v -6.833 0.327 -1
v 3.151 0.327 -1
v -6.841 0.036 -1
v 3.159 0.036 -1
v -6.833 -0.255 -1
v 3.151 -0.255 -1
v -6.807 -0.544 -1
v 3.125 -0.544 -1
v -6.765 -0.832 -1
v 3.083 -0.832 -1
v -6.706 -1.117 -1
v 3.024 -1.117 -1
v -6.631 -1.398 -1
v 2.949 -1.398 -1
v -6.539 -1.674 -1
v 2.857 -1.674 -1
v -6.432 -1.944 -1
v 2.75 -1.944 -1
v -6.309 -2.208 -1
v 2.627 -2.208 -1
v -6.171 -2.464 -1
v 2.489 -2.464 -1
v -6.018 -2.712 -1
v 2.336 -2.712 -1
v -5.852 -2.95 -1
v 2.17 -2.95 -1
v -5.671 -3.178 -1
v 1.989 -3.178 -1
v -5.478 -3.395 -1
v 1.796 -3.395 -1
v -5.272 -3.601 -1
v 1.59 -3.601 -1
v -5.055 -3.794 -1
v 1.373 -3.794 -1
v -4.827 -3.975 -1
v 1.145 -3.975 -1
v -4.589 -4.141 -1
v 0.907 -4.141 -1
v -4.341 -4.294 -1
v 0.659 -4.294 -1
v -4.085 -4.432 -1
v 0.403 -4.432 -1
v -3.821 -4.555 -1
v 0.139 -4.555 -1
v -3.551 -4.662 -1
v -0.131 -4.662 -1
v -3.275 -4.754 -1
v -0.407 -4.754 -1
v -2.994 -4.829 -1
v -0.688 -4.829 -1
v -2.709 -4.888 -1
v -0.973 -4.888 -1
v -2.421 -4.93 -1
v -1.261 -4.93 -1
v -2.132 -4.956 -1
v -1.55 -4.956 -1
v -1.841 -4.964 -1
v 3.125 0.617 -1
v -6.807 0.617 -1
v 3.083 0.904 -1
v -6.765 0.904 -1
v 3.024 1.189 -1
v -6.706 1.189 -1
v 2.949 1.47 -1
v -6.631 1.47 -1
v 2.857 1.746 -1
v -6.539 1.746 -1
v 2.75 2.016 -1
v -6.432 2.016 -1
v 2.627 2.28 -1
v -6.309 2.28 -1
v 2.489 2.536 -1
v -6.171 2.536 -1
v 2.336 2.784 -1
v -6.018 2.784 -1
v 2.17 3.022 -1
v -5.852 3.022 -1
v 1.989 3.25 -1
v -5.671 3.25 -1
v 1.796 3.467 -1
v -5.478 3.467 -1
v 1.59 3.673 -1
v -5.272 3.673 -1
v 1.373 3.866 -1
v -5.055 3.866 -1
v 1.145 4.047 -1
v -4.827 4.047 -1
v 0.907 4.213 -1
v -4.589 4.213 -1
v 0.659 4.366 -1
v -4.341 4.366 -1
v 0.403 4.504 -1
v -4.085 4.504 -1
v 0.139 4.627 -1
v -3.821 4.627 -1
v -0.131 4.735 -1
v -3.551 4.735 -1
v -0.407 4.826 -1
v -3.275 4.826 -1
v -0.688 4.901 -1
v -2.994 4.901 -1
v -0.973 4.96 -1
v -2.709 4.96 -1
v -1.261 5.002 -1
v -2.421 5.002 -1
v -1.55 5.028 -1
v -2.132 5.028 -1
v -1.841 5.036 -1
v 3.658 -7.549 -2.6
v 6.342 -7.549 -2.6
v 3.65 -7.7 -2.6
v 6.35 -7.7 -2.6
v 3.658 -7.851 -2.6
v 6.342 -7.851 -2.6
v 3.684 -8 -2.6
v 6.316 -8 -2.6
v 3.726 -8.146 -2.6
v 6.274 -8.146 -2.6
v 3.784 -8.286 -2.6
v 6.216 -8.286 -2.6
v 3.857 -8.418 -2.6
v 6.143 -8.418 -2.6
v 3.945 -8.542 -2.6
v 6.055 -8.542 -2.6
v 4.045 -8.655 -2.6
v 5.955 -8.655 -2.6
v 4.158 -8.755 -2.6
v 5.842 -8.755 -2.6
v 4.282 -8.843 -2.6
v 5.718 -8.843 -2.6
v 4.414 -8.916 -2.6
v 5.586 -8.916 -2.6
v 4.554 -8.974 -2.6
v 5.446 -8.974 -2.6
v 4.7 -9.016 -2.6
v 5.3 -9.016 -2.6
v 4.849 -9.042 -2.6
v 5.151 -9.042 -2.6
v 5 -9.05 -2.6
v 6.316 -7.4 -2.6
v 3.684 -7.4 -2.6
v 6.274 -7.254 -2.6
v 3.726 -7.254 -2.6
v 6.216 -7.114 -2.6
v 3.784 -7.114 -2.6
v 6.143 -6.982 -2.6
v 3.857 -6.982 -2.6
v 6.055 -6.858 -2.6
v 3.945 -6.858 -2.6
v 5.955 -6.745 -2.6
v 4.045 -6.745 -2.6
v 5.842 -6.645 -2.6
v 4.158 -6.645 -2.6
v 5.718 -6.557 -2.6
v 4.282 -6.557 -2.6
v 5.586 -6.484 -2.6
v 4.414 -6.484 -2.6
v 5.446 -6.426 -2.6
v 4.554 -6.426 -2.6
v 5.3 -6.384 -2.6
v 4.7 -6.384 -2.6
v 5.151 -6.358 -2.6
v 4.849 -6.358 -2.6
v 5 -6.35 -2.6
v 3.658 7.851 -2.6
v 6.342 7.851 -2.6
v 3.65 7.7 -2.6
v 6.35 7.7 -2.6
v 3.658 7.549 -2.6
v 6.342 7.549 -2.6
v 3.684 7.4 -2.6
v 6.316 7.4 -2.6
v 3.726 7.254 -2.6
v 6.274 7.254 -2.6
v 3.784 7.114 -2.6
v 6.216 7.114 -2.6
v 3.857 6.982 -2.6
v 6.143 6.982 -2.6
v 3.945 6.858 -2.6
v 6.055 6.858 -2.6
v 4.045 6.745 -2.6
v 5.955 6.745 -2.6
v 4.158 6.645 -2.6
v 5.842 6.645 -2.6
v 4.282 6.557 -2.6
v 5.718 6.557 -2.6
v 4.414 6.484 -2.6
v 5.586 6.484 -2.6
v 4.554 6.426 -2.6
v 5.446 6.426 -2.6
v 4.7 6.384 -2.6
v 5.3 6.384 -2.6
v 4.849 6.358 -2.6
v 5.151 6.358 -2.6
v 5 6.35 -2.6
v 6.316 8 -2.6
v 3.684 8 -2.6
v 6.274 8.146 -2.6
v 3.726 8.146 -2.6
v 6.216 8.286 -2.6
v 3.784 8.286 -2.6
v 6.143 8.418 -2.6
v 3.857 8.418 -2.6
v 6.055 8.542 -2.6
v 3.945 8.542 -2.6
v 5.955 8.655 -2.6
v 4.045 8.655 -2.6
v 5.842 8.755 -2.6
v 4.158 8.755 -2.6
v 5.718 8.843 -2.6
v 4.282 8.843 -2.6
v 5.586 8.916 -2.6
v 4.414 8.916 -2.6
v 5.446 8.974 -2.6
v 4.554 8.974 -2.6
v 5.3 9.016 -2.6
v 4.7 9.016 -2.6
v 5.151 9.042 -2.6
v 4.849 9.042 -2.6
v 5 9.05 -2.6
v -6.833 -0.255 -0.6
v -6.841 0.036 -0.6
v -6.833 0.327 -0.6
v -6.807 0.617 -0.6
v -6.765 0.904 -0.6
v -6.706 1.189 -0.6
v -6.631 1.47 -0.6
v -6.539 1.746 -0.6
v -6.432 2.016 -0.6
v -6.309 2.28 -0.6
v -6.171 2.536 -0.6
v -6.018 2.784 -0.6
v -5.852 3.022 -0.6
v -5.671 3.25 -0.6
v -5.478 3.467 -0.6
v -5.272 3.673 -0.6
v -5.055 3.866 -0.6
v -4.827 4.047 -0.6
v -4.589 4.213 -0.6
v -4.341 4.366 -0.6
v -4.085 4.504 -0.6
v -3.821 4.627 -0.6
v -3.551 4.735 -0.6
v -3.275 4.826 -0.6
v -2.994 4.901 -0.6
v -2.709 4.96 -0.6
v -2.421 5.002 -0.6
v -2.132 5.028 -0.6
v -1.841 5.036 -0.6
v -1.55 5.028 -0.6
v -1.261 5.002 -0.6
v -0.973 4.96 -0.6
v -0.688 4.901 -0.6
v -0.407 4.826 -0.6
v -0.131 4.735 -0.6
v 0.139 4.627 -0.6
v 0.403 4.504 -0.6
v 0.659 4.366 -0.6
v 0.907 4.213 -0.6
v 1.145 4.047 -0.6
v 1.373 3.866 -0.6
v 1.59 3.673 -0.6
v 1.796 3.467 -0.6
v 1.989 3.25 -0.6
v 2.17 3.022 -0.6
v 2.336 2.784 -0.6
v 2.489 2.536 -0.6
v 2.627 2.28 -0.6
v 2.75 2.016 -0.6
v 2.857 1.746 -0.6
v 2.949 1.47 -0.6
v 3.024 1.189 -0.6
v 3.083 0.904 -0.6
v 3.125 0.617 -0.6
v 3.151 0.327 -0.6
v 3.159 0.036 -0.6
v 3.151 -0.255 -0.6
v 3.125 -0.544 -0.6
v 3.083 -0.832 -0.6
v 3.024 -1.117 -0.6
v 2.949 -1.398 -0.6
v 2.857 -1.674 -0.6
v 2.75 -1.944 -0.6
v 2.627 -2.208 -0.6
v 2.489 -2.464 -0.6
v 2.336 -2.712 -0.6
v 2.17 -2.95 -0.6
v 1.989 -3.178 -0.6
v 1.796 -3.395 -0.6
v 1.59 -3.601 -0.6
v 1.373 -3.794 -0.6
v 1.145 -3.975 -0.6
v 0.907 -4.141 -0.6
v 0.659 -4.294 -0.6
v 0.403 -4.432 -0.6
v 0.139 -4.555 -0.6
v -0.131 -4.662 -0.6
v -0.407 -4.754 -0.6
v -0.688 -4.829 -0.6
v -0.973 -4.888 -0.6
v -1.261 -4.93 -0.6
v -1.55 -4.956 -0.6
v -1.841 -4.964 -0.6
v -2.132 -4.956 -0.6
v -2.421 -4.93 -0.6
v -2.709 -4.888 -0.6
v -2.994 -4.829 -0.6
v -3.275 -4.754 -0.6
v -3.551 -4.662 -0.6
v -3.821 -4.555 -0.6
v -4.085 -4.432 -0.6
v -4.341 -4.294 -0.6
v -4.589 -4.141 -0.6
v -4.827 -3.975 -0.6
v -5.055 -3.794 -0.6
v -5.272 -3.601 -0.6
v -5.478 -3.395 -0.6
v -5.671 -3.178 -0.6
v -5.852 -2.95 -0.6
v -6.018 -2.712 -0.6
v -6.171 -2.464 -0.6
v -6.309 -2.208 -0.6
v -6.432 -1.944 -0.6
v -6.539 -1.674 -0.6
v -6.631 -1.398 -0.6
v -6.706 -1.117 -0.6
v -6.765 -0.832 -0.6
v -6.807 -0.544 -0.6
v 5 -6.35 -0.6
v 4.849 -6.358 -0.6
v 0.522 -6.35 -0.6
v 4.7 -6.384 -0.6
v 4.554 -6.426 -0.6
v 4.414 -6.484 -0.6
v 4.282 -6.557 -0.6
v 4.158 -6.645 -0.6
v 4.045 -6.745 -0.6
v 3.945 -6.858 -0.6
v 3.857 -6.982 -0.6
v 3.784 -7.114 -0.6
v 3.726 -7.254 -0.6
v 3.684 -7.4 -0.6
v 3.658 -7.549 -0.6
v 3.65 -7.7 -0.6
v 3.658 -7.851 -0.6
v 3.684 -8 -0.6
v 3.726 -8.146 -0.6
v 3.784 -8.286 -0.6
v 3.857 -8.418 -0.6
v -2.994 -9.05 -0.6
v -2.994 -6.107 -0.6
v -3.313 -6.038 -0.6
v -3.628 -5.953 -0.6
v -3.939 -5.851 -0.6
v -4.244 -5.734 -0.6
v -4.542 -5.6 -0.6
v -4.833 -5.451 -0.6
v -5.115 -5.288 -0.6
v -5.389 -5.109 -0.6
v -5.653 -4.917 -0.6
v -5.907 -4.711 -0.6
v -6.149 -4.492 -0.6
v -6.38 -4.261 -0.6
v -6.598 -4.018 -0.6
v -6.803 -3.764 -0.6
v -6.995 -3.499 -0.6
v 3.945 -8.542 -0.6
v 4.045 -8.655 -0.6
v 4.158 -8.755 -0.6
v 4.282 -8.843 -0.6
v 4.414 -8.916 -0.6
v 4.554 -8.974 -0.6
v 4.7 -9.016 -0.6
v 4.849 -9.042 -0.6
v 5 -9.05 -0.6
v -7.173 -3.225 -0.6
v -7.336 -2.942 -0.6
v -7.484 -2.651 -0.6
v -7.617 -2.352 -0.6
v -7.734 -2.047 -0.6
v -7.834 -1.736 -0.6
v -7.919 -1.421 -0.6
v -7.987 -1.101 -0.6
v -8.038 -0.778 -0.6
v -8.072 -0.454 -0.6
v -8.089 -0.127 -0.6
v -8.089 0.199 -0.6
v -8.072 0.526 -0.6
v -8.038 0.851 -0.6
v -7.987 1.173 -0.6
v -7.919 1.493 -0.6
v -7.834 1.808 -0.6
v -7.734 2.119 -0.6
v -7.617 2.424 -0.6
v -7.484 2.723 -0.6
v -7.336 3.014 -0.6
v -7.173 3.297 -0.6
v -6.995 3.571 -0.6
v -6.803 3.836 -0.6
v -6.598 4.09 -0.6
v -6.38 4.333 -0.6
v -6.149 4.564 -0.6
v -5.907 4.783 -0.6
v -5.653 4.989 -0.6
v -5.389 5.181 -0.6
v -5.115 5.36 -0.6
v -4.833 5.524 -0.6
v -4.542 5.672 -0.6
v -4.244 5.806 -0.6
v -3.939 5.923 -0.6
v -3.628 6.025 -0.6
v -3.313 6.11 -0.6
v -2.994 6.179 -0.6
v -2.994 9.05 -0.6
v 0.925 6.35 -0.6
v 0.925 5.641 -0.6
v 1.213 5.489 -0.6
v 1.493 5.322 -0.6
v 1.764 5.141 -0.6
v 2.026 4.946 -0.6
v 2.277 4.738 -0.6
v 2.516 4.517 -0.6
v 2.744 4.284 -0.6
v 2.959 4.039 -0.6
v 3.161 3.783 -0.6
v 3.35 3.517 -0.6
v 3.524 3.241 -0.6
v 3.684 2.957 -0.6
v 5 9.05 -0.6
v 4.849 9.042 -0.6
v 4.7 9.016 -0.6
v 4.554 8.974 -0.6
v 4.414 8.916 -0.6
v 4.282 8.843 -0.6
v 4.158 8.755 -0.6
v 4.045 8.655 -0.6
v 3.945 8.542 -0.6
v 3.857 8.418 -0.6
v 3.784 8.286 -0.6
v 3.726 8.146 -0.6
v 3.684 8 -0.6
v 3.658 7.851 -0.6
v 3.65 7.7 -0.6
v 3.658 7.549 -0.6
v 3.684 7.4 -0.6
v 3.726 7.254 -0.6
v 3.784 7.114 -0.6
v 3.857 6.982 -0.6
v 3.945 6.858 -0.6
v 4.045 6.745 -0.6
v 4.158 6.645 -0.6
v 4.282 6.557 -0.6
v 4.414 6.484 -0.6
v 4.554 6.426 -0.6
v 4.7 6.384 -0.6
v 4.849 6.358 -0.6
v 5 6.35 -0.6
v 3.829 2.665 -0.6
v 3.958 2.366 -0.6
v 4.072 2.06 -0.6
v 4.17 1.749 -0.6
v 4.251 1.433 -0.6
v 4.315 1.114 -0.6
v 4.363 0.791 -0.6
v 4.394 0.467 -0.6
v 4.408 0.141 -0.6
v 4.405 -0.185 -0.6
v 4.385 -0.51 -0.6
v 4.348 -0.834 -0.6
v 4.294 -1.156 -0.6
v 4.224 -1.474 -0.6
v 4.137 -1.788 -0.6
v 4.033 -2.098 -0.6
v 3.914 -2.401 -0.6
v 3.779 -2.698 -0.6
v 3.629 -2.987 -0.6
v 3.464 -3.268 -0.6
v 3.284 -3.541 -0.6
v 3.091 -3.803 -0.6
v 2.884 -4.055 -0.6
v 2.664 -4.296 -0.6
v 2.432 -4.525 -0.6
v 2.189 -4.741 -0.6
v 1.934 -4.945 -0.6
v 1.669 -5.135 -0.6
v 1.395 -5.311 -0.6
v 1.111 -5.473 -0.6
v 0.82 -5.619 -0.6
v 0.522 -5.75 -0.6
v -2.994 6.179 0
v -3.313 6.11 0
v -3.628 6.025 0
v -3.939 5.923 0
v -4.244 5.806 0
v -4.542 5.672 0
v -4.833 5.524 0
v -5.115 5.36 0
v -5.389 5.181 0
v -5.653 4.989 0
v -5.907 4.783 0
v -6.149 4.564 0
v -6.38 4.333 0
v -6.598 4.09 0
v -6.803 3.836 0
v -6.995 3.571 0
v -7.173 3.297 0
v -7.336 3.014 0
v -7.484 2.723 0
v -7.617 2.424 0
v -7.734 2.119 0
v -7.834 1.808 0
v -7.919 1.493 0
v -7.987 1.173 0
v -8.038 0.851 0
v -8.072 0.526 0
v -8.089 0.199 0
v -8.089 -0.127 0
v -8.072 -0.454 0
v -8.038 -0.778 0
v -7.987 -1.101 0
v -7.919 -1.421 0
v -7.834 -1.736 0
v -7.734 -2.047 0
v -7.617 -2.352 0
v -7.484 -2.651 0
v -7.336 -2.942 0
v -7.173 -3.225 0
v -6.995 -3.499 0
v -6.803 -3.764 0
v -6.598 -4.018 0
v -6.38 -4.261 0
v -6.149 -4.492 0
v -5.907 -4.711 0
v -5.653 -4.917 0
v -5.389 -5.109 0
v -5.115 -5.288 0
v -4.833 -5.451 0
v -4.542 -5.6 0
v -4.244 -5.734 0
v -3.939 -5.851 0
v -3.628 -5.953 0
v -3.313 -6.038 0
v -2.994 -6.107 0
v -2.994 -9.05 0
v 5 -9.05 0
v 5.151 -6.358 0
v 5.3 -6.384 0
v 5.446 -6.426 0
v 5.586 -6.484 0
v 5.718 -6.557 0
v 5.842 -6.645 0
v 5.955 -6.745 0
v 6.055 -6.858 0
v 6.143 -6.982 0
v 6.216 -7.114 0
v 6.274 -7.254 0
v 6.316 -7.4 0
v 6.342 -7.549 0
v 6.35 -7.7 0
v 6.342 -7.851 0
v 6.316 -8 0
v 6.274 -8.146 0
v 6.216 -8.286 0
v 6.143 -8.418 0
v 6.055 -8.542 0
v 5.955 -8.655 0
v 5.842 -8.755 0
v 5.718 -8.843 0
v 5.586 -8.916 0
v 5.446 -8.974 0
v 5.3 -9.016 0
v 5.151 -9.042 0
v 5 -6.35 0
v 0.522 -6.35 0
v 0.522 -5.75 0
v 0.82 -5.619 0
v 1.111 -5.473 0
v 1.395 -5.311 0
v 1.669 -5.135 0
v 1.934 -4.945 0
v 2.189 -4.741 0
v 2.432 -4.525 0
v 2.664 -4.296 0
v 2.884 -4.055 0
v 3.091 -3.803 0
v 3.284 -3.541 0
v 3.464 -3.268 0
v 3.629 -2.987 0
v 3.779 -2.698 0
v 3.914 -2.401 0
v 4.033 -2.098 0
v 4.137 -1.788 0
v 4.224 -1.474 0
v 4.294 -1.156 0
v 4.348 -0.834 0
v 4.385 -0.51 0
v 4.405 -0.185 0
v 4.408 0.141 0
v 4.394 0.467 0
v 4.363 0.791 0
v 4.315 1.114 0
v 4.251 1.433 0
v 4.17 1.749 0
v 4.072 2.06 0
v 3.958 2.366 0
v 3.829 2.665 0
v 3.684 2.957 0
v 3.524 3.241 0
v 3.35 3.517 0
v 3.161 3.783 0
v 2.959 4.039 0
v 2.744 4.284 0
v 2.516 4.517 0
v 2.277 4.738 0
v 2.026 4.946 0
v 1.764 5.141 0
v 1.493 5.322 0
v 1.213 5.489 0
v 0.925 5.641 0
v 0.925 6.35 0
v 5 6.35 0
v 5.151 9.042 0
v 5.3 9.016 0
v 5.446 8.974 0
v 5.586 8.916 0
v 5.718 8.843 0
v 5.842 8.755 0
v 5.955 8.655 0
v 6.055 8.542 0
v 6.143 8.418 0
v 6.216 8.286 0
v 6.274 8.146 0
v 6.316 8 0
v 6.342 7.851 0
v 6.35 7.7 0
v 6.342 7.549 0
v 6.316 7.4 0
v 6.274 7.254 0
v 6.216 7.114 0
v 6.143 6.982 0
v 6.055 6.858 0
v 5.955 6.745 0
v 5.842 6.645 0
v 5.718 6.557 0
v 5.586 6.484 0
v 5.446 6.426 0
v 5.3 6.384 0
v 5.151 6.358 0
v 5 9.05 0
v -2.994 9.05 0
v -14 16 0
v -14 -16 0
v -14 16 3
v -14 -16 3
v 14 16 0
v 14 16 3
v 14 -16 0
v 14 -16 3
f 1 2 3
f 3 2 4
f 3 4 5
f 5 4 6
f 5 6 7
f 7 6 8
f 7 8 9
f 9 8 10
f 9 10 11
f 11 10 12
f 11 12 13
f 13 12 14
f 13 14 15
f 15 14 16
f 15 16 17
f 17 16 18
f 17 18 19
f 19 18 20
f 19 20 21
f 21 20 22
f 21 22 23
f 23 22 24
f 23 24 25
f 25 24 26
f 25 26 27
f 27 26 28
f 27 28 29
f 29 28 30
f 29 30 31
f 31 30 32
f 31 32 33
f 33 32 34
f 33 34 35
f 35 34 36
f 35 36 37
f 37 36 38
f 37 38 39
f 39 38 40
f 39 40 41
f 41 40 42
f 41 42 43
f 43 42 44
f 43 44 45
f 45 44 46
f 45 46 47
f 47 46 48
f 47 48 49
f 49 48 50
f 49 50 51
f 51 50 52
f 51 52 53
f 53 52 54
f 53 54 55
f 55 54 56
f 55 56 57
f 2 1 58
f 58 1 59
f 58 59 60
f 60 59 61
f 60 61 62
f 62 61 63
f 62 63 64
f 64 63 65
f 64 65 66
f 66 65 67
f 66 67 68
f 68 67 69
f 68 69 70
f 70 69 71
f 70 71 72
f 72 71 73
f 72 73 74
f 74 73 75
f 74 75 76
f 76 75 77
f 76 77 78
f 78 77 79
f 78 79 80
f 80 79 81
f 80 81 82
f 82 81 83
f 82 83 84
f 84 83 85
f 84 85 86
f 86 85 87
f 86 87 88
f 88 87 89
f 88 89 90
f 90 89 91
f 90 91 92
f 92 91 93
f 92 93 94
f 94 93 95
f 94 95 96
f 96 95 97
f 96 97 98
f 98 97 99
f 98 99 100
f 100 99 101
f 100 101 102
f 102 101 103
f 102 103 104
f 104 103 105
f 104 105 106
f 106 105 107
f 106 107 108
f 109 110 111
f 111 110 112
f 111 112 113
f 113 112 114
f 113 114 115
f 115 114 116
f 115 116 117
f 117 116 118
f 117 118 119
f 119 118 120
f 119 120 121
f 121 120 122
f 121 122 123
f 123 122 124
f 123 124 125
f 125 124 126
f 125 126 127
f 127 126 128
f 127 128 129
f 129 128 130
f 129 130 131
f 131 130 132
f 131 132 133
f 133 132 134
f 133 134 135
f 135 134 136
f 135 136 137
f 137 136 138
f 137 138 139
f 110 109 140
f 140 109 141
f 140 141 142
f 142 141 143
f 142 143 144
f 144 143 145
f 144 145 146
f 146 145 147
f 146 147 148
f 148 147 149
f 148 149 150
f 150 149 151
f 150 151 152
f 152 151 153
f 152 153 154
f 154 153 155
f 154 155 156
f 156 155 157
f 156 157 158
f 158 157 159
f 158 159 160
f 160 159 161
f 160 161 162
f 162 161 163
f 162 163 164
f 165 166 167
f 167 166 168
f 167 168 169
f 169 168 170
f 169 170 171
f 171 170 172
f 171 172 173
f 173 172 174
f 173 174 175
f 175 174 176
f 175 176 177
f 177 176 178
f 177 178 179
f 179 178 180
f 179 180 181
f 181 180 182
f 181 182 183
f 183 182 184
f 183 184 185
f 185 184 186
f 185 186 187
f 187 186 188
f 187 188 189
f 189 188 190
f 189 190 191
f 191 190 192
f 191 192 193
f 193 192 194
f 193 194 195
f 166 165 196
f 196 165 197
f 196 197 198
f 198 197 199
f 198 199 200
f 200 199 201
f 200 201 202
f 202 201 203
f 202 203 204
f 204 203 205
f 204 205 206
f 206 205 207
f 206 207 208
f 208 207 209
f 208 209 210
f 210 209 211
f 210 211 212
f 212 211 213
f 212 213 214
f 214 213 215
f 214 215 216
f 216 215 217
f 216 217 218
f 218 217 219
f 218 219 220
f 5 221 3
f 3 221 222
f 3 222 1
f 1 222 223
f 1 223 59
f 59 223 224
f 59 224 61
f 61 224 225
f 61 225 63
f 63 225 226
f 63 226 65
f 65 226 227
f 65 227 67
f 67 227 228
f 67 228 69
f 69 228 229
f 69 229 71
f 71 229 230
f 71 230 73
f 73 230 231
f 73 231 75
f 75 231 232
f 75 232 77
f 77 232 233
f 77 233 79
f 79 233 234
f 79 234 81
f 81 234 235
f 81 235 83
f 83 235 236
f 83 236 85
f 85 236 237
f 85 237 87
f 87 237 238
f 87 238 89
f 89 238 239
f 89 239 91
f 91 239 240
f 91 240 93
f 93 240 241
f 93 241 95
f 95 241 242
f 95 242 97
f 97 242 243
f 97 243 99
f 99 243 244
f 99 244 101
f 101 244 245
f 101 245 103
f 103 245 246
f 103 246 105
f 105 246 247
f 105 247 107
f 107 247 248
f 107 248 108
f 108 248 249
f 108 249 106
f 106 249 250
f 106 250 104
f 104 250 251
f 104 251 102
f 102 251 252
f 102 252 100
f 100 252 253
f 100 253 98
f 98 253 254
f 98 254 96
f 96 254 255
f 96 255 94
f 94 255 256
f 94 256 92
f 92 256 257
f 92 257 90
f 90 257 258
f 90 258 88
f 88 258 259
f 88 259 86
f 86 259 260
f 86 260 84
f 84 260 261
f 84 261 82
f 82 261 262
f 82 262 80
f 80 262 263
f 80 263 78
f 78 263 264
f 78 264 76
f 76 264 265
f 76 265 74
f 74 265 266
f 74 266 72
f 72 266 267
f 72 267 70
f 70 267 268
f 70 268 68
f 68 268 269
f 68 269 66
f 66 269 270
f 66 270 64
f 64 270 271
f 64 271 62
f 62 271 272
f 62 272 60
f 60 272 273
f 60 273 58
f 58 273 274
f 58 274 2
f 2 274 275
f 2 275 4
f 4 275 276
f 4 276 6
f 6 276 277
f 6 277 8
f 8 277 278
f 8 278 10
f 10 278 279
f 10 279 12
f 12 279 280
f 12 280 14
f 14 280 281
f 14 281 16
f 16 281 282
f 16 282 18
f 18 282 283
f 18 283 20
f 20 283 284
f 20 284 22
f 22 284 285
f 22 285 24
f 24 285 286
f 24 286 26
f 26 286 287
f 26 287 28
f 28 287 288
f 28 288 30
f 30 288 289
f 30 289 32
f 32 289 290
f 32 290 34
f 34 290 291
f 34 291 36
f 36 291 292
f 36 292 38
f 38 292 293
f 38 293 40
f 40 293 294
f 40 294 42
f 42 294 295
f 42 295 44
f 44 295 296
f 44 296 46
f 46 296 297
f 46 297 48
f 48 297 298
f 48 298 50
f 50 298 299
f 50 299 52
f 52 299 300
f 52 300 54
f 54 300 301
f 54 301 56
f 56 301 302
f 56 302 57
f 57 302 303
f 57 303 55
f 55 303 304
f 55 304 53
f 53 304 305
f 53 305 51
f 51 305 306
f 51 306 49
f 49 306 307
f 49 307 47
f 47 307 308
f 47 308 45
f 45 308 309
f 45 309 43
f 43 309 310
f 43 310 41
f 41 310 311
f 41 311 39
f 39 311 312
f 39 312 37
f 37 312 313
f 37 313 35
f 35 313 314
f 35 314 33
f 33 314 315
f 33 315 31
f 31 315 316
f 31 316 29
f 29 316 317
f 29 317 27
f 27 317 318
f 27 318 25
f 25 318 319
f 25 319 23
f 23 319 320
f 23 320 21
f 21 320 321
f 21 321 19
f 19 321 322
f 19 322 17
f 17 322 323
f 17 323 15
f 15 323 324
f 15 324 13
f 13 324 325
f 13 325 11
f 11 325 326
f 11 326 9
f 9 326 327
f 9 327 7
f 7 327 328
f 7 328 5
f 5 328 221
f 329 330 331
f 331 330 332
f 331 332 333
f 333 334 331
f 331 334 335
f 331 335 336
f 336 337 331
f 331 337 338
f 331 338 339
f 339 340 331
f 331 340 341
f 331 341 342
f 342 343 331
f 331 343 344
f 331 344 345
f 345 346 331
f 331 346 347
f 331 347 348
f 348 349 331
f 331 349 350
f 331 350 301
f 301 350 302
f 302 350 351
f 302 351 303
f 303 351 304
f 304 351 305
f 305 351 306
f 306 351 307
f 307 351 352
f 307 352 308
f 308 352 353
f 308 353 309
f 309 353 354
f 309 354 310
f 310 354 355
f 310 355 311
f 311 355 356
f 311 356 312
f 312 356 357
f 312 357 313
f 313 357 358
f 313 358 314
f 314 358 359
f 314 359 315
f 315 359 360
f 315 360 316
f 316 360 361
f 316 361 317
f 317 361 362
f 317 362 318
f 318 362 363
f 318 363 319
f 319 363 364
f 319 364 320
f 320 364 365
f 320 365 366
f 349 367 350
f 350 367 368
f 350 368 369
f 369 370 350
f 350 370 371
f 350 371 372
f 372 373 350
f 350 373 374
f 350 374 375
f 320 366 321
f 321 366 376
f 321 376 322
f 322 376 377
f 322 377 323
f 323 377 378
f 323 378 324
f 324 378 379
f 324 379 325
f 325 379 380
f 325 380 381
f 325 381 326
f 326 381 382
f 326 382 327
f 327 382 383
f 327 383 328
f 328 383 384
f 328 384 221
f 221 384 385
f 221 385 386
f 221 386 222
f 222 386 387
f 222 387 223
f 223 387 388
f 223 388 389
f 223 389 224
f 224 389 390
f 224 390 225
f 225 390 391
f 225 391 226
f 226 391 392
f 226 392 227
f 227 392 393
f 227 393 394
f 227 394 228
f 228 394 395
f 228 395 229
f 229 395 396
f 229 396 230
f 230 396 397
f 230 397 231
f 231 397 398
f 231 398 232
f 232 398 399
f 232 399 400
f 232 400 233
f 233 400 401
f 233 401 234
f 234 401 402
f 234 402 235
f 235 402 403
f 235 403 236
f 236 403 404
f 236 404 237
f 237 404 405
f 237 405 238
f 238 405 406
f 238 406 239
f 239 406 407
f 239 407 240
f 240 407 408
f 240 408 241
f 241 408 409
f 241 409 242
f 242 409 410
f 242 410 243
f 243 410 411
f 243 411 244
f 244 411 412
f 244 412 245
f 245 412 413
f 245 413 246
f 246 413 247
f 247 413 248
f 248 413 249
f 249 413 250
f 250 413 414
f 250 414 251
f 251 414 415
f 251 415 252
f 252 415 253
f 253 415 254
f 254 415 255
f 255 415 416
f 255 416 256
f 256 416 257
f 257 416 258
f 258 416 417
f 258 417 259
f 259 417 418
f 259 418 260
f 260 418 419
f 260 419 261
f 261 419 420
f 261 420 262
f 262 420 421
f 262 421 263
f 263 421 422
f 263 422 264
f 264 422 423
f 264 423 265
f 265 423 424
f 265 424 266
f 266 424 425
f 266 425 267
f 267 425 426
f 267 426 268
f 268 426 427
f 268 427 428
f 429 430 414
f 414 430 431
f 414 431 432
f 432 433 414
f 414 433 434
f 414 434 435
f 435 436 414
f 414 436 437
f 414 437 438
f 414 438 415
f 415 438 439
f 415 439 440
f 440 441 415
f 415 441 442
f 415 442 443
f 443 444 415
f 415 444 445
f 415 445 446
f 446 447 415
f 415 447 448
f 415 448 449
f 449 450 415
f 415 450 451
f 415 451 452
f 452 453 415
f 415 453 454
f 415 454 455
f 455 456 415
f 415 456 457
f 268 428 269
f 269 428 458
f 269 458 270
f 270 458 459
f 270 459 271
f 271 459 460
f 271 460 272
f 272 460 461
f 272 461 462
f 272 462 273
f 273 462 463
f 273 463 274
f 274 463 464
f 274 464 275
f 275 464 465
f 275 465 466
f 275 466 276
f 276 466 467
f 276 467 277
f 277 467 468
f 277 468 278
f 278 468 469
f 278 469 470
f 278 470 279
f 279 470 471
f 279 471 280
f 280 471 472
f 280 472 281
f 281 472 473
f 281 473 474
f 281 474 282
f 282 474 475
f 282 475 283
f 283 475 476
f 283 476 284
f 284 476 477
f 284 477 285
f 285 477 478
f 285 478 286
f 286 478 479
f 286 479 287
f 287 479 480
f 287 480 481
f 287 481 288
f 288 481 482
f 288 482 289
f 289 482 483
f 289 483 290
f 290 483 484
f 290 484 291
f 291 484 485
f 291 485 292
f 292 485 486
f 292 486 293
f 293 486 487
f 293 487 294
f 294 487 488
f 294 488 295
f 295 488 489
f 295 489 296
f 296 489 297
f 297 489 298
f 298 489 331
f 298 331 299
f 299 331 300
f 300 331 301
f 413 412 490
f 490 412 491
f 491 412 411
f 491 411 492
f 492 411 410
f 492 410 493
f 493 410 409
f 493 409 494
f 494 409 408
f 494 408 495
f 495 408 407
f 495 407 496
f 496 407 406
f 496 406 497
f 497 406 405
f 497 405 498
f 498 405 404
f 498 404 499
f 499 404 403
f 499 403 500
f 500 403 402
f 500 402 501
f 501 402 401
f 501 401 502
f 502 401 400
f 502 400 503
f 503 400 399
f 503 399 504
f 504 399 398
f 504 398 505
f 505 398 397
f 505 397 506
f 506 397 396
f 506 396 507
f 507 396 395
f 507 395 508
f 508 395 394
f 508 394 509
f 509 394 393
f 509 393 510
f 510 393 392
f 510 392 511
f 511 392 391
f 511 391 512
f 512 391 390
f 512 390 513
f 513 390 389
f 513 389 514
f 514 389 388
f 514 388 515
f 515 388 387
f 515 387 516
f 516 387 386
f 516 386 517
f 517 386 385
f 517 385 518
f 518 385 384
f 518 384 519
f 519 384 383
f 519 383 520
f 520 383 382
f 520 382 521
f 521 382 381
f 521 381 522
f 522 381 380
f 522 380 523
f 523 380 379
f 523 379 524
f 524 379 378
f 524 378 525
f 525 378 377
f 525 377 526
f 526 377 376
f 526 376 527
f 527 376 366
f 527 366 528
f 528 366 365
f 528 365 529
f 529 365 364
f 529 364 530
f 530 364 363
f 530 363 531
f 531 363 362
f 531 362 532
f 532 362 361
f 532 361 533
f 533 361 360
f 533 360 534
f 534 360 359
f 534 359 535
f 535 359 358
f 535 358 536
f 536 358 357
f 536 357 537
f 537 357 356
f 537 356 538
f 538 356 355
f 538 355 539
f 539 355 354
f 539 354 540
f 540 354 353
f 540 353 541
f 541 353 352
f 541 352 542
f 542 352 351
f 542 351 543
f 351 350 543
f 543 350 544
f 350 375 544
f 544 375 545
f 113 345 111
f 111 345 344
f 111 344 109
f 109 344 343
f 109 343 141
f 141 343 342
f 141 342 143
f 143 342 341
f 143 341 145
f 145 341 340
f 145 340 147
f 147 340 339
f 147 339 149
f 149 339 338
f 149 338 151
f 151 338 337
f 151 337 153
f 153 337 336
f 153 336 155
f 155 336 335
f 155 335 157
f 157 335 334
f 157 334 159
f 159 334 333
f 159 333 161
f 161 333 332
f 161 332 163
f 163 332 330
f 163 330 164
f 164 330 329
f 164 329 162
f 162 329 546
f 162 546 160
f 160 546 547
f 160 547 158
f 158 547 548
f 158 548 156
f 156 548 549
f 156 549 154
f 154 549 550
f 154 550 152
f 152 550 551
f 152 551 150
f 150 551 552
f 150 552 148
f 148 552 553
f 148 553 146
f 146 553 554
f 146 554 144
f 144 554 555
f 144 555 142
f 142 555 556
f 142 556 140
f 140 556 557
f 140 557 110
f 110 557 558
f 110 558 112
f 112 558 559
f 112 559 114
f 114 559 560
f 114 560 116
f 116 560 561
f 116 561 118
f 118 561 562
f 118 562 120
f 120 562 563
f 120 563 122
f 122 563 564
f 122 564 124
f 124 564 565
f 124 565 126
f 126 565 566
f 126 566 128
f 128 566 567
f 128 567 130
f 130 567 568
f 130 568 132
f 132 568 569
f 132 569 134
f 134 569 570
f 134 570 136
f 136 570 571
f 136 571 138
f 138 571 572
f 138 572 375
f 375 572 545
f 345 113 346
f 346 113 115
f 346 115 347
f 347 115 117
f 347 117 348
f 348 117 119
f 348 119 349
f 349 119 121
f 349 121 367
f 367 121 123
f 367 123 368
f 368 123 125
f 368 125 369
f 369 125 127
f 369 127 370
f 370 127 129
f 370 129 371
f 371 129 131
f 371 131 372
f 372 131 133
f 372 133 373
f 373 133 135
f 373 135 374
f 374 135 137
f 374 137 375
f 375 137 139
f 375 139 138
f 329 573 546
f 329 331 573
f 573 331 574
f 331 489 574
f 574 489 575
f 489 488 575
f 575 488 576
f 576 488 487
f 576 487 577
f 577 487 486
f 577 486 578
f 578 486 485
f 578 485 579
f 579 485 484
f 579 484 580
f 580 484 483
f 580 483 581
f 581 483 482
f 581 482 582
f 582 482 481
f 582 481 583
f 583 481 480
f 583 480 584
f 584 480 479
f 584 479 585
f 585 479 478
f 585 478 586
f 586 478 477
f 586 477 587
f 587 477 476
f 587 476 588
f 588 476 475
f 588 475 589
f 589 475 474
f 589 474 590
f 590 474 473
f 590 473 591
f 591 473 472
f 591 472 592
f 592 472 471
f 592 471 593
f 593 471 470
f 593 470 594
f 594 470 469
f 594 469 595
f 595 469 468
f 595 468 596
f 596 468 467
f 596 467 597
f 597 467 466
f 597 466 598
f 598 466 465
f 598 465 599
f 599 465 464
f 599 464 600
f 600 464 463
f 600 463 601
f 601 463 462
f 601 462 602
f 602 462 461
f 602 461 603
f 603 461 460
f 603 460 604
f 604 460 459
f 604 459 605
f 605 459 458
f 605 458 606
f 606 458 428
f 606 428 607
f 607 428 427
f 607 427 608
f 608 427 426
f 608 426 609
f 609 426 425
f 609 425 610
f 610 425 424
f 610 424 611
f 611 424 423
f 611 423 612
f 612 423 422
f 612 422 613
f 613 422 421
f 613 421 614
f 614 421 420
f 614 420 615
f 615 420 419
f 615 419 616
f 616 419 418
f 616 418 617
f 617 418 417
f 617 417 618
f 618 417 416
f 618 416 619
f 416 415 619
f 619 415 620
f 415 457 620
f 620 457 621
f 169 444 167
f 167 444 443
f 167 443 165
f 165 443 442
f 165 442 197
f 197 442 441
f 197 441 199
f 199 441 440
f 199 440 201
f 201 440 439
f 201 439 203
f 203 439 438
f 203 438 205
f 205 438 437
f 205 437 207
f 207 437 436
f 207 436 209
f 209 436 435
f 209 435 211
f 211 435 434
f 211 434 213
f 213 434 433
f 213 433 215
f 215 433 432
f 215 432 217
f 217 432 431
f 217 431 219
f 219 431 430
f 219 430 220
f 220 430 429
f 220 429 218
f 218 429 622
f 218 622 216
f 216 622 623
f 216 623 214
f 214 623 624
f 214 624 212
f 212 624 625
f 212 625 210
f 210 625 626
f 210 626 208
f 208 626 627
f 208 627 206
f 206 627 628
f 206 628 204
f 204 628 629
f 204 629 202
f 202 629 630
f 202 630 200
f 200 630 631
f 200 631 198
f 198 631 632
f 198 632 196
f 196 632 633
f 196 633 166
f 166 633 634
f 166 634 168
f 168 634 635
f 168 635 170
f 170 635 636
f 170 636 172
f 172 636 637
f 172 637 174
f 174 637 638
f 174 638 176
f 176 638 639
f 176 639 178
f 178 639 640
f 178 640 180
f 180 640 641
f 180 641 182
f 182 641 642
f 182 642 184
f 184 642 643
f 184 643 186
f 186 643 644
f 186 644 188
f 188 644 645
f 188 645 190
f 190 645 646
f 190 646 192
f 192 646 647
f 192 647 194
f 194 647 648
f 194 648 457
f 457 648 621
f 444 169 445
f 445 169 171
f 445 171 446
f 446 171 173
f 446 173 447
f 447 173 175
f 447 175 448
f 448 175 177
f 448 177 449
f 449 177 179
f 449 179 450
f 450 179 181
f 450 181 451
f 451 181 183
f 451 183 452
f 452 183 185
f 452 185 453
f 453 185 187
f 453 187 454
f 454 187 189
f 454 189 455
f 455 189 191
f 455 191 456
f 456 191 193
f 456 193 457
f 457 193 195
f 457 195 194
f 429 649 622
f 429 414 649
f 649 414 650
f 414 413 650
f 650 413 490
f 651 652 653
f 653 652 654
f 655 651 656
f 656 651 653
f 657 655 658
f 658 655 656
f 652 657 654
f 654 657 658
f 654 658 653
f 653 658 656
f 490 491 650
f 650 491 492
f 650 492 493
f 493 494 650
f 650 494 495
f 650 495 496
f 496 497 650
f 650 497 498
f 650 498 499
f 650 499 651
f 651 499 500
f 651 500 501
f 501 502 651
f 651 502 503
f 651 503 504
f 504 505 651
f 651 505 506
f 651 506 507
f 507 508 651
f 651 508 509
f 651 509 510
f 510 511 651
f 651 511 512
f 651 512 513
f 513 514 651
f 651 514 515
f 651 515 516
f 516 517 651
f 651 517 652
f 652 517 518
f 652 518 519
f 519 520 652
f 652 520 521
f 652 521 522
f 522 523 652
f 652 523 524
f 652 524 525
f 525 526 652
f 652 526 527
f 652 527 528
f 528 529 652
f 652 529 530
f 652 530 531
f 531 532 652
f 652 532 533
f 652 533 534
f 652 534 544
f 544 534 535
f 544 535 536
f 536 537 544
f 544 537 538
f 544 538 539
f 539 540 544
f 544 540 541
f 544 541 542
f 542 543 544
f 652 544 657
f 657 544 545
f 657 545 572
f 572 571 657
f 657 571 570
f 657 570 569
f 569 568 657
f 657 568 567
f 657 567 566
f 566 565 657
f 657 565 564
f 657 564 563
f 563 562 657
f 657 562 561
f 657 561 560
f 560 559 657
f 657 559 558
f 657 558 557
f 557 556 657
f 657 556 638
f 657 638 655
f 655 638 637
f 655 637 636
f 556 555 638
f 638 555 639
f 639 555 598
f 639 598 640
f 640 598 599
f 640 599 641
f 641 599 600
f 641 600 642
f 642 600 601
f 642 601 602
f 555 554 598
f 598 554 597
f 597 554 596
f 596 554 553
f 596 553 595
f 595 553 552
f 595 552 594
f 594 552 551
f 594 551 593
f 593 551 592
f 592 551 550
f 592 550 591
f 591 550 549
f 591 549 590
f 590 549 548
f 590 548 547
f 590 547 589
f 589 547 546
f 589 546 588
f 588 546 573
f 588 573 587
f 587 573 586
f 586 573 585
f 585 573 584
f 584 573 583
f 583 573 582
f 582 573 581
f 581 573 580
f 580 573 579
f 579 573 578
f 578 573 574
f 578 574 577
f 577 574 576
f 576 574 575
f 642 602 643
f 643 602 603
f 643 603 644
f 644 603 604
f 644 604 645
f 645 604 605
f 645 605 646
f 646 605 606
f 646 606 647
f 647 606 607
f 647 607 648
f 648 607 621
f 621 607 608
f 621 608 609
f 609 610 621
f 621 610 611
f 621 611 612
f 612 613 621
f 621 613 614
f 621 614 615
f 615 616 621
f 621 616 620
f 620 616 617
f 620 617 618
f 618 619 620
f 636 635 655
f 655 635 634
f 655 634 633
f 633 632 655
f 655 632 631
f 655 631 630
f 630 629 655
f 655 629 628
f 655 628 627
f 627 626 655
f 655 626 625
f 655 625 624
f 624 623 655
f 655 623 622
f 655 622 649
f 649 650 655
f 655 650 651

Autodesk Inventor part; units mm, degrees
ref_plane "YZ Plane" through (0, 0, 0) normal (1, 0, 0) x (0, 1, 0)
ref_plane "Work Plane1" through (0, 0, 0) normal (0, 0, 1) x (1, 0, 0)
sketch "Sketch1" plane through (0, 0, 0) normal (0, 0, 1) x (1, 0, 0)
  line L0 (9, 11.7) -> (-9, 11.7) projected
  line L1 (-9, 11.7) -> (-9, -11.7) projected
  line L2 (-9, -11.7) -> (9, -11.7) projected
  line L3 (9, -11.7) -> (9, 11.7) projected
  line L4 (5, -9.05) -> (-2.9937, -9.05) projected
  line L5 (-2.9937, -9.05) -> (-2.9937, -6.1068) projected
  arc A0 (-2.9937, 6.1788) -> (-2.9937, -6.1068) centre (-1.841, 0.036) ccw projected
  line L6 (-2.9937, 6.1788) -> (-2.9937, 9.05) projected
  line L7 (-2.9937, 9.05) -> (5, 9.05) projected
  arc A1 (5, 6.35) -> (5, 9.05) centre (5, 7.7) ccw projected
  line L8 (5, 6.35) -> (0.9246, 6.35) projected
  line L9 (0.9246, 6.35) -> (0.9246, 5.6409) projected
  arc A2 (0.5216, -5.7502) -> (0.9246, 5.6409) centre (-1.841, 0.036) ccw projected
  line L10 (0.5216, -5.7502) -> (0.5216, -6.35) projected
  line L11 (0.5216, -6.35) -> (5, -6.35) projected
  arc A3 (5, -9.05) -> (5, -6.35) centre (5, -7.7) ccw projected
  line L12 (-14, -16) -> (14, -16)
  line L13 (14, -16) -> (14, 16)
  line L14 (14, 16) -> (-14, 16)
  line L15 (-14, 16) -> (-14, -16)
  line L16 (-14, -16) -> (14, 16) construction
  line L17 (14, -16) -> (-14, 16) construction
  point P0 (0, 0)
  dimension "d0" = 28
  dimension "d1" = 32
extrude "Extrusion1" add sketch "Sketch1" along normal blind 3 contours L3 L2 L1 L0 | L4 L5 A0 L6 L7 A1 L8 L9 A2 L10 L11 A3 | L15 L14 L13 L12
sketch "Sketch2" plane through (0, 0, 0) normal (0, 0, -1) x (-1, 0, 0)
  circle A0 centre (1.841, 0.036) radius 6.25 projected
  arc A1 (-5, -9.05) -> (-5, -6.35) centre (-5, -7.7) ccw projected
  line L0 (-0.5216, -6.35) -> (-5, -6.35) projected
  line L1 (-0.5216, -5.7502) -> (-0.5216, -6.35) projected
  arc A2 (-0.5216, -5.7502) -> (2.9937, -6.1068) centre (1.841, 0.036) ccw projected
  line L2 (2.9937, -9.05) -> (2.9937, -6.1068) projected
  line L3 (-5, -9.05) -> (2.9937, -9.05) projected
  arc A3 (2.9937, 6.1788) -> (-0.9246, 5.6409) centre (1.841, 0.036) ccw projected
  line L4 (-0.9246, 6.35) -> (-0.9246, 5.6409) projected
  line L5 (-5, 6.35) -> (-0.9246, 6.35) projected
  arc A4 (-5, 6.35) -> (-5, 9.05) centre (-5, 7.7) ccw projected
  line L6 (2.9937, 9.05) -> (-5, 9.05) projected
  line L7 (2.9937, 6.1788) -> (2.9937, 9.05) projected
  circle A5 centre (-5, 7.7) radius 1.35 projected
  circle A6 centre (-5, -7.7) radius 1.35 projected
  point P0 (0, 0)
ref_plane "Work Plane2" through (-8.091, -6.214, -0.6) normal (0, 0, 1) x (1, 0, 0)
extrude "Extrusion2" add sketch "Sketch2" along normal up to surface (0.6 mm away)
sketch "Sketch3" plane through (5, -9.05, -0.6) normal (0, 0, -1) x (-1, 0, 0)
  circle A0 centre (6.841, 9.086) radius 5 projected
  circle A1 centre (0, 16.75) radius 1.35 projected
  circle A2 centre (0, 1.35) radius 1.35 projected
  point P0 (5, 9.05)
extrude "Extrusion3" add sketch "Sketch3" along normal blind 2
sketch "Sketch4" plane through (-1.841, 0.036, -2.6) normal (0, 0, -1) x (-1, 0, 0)
  circle A0 centre (0, 0) radius 5.2 projected
  point P0 (-1.841, -0.036)
ref_plane "Work Plane3" through (-9, -11.7, -1) normal (0, 0, -1) x (0, 1, 0)
extrude "Extrusion4" cut sketch "Sketch4" against normal up to surface (1.6 mm away)
properties part number "00_PDMS_mould_0"
